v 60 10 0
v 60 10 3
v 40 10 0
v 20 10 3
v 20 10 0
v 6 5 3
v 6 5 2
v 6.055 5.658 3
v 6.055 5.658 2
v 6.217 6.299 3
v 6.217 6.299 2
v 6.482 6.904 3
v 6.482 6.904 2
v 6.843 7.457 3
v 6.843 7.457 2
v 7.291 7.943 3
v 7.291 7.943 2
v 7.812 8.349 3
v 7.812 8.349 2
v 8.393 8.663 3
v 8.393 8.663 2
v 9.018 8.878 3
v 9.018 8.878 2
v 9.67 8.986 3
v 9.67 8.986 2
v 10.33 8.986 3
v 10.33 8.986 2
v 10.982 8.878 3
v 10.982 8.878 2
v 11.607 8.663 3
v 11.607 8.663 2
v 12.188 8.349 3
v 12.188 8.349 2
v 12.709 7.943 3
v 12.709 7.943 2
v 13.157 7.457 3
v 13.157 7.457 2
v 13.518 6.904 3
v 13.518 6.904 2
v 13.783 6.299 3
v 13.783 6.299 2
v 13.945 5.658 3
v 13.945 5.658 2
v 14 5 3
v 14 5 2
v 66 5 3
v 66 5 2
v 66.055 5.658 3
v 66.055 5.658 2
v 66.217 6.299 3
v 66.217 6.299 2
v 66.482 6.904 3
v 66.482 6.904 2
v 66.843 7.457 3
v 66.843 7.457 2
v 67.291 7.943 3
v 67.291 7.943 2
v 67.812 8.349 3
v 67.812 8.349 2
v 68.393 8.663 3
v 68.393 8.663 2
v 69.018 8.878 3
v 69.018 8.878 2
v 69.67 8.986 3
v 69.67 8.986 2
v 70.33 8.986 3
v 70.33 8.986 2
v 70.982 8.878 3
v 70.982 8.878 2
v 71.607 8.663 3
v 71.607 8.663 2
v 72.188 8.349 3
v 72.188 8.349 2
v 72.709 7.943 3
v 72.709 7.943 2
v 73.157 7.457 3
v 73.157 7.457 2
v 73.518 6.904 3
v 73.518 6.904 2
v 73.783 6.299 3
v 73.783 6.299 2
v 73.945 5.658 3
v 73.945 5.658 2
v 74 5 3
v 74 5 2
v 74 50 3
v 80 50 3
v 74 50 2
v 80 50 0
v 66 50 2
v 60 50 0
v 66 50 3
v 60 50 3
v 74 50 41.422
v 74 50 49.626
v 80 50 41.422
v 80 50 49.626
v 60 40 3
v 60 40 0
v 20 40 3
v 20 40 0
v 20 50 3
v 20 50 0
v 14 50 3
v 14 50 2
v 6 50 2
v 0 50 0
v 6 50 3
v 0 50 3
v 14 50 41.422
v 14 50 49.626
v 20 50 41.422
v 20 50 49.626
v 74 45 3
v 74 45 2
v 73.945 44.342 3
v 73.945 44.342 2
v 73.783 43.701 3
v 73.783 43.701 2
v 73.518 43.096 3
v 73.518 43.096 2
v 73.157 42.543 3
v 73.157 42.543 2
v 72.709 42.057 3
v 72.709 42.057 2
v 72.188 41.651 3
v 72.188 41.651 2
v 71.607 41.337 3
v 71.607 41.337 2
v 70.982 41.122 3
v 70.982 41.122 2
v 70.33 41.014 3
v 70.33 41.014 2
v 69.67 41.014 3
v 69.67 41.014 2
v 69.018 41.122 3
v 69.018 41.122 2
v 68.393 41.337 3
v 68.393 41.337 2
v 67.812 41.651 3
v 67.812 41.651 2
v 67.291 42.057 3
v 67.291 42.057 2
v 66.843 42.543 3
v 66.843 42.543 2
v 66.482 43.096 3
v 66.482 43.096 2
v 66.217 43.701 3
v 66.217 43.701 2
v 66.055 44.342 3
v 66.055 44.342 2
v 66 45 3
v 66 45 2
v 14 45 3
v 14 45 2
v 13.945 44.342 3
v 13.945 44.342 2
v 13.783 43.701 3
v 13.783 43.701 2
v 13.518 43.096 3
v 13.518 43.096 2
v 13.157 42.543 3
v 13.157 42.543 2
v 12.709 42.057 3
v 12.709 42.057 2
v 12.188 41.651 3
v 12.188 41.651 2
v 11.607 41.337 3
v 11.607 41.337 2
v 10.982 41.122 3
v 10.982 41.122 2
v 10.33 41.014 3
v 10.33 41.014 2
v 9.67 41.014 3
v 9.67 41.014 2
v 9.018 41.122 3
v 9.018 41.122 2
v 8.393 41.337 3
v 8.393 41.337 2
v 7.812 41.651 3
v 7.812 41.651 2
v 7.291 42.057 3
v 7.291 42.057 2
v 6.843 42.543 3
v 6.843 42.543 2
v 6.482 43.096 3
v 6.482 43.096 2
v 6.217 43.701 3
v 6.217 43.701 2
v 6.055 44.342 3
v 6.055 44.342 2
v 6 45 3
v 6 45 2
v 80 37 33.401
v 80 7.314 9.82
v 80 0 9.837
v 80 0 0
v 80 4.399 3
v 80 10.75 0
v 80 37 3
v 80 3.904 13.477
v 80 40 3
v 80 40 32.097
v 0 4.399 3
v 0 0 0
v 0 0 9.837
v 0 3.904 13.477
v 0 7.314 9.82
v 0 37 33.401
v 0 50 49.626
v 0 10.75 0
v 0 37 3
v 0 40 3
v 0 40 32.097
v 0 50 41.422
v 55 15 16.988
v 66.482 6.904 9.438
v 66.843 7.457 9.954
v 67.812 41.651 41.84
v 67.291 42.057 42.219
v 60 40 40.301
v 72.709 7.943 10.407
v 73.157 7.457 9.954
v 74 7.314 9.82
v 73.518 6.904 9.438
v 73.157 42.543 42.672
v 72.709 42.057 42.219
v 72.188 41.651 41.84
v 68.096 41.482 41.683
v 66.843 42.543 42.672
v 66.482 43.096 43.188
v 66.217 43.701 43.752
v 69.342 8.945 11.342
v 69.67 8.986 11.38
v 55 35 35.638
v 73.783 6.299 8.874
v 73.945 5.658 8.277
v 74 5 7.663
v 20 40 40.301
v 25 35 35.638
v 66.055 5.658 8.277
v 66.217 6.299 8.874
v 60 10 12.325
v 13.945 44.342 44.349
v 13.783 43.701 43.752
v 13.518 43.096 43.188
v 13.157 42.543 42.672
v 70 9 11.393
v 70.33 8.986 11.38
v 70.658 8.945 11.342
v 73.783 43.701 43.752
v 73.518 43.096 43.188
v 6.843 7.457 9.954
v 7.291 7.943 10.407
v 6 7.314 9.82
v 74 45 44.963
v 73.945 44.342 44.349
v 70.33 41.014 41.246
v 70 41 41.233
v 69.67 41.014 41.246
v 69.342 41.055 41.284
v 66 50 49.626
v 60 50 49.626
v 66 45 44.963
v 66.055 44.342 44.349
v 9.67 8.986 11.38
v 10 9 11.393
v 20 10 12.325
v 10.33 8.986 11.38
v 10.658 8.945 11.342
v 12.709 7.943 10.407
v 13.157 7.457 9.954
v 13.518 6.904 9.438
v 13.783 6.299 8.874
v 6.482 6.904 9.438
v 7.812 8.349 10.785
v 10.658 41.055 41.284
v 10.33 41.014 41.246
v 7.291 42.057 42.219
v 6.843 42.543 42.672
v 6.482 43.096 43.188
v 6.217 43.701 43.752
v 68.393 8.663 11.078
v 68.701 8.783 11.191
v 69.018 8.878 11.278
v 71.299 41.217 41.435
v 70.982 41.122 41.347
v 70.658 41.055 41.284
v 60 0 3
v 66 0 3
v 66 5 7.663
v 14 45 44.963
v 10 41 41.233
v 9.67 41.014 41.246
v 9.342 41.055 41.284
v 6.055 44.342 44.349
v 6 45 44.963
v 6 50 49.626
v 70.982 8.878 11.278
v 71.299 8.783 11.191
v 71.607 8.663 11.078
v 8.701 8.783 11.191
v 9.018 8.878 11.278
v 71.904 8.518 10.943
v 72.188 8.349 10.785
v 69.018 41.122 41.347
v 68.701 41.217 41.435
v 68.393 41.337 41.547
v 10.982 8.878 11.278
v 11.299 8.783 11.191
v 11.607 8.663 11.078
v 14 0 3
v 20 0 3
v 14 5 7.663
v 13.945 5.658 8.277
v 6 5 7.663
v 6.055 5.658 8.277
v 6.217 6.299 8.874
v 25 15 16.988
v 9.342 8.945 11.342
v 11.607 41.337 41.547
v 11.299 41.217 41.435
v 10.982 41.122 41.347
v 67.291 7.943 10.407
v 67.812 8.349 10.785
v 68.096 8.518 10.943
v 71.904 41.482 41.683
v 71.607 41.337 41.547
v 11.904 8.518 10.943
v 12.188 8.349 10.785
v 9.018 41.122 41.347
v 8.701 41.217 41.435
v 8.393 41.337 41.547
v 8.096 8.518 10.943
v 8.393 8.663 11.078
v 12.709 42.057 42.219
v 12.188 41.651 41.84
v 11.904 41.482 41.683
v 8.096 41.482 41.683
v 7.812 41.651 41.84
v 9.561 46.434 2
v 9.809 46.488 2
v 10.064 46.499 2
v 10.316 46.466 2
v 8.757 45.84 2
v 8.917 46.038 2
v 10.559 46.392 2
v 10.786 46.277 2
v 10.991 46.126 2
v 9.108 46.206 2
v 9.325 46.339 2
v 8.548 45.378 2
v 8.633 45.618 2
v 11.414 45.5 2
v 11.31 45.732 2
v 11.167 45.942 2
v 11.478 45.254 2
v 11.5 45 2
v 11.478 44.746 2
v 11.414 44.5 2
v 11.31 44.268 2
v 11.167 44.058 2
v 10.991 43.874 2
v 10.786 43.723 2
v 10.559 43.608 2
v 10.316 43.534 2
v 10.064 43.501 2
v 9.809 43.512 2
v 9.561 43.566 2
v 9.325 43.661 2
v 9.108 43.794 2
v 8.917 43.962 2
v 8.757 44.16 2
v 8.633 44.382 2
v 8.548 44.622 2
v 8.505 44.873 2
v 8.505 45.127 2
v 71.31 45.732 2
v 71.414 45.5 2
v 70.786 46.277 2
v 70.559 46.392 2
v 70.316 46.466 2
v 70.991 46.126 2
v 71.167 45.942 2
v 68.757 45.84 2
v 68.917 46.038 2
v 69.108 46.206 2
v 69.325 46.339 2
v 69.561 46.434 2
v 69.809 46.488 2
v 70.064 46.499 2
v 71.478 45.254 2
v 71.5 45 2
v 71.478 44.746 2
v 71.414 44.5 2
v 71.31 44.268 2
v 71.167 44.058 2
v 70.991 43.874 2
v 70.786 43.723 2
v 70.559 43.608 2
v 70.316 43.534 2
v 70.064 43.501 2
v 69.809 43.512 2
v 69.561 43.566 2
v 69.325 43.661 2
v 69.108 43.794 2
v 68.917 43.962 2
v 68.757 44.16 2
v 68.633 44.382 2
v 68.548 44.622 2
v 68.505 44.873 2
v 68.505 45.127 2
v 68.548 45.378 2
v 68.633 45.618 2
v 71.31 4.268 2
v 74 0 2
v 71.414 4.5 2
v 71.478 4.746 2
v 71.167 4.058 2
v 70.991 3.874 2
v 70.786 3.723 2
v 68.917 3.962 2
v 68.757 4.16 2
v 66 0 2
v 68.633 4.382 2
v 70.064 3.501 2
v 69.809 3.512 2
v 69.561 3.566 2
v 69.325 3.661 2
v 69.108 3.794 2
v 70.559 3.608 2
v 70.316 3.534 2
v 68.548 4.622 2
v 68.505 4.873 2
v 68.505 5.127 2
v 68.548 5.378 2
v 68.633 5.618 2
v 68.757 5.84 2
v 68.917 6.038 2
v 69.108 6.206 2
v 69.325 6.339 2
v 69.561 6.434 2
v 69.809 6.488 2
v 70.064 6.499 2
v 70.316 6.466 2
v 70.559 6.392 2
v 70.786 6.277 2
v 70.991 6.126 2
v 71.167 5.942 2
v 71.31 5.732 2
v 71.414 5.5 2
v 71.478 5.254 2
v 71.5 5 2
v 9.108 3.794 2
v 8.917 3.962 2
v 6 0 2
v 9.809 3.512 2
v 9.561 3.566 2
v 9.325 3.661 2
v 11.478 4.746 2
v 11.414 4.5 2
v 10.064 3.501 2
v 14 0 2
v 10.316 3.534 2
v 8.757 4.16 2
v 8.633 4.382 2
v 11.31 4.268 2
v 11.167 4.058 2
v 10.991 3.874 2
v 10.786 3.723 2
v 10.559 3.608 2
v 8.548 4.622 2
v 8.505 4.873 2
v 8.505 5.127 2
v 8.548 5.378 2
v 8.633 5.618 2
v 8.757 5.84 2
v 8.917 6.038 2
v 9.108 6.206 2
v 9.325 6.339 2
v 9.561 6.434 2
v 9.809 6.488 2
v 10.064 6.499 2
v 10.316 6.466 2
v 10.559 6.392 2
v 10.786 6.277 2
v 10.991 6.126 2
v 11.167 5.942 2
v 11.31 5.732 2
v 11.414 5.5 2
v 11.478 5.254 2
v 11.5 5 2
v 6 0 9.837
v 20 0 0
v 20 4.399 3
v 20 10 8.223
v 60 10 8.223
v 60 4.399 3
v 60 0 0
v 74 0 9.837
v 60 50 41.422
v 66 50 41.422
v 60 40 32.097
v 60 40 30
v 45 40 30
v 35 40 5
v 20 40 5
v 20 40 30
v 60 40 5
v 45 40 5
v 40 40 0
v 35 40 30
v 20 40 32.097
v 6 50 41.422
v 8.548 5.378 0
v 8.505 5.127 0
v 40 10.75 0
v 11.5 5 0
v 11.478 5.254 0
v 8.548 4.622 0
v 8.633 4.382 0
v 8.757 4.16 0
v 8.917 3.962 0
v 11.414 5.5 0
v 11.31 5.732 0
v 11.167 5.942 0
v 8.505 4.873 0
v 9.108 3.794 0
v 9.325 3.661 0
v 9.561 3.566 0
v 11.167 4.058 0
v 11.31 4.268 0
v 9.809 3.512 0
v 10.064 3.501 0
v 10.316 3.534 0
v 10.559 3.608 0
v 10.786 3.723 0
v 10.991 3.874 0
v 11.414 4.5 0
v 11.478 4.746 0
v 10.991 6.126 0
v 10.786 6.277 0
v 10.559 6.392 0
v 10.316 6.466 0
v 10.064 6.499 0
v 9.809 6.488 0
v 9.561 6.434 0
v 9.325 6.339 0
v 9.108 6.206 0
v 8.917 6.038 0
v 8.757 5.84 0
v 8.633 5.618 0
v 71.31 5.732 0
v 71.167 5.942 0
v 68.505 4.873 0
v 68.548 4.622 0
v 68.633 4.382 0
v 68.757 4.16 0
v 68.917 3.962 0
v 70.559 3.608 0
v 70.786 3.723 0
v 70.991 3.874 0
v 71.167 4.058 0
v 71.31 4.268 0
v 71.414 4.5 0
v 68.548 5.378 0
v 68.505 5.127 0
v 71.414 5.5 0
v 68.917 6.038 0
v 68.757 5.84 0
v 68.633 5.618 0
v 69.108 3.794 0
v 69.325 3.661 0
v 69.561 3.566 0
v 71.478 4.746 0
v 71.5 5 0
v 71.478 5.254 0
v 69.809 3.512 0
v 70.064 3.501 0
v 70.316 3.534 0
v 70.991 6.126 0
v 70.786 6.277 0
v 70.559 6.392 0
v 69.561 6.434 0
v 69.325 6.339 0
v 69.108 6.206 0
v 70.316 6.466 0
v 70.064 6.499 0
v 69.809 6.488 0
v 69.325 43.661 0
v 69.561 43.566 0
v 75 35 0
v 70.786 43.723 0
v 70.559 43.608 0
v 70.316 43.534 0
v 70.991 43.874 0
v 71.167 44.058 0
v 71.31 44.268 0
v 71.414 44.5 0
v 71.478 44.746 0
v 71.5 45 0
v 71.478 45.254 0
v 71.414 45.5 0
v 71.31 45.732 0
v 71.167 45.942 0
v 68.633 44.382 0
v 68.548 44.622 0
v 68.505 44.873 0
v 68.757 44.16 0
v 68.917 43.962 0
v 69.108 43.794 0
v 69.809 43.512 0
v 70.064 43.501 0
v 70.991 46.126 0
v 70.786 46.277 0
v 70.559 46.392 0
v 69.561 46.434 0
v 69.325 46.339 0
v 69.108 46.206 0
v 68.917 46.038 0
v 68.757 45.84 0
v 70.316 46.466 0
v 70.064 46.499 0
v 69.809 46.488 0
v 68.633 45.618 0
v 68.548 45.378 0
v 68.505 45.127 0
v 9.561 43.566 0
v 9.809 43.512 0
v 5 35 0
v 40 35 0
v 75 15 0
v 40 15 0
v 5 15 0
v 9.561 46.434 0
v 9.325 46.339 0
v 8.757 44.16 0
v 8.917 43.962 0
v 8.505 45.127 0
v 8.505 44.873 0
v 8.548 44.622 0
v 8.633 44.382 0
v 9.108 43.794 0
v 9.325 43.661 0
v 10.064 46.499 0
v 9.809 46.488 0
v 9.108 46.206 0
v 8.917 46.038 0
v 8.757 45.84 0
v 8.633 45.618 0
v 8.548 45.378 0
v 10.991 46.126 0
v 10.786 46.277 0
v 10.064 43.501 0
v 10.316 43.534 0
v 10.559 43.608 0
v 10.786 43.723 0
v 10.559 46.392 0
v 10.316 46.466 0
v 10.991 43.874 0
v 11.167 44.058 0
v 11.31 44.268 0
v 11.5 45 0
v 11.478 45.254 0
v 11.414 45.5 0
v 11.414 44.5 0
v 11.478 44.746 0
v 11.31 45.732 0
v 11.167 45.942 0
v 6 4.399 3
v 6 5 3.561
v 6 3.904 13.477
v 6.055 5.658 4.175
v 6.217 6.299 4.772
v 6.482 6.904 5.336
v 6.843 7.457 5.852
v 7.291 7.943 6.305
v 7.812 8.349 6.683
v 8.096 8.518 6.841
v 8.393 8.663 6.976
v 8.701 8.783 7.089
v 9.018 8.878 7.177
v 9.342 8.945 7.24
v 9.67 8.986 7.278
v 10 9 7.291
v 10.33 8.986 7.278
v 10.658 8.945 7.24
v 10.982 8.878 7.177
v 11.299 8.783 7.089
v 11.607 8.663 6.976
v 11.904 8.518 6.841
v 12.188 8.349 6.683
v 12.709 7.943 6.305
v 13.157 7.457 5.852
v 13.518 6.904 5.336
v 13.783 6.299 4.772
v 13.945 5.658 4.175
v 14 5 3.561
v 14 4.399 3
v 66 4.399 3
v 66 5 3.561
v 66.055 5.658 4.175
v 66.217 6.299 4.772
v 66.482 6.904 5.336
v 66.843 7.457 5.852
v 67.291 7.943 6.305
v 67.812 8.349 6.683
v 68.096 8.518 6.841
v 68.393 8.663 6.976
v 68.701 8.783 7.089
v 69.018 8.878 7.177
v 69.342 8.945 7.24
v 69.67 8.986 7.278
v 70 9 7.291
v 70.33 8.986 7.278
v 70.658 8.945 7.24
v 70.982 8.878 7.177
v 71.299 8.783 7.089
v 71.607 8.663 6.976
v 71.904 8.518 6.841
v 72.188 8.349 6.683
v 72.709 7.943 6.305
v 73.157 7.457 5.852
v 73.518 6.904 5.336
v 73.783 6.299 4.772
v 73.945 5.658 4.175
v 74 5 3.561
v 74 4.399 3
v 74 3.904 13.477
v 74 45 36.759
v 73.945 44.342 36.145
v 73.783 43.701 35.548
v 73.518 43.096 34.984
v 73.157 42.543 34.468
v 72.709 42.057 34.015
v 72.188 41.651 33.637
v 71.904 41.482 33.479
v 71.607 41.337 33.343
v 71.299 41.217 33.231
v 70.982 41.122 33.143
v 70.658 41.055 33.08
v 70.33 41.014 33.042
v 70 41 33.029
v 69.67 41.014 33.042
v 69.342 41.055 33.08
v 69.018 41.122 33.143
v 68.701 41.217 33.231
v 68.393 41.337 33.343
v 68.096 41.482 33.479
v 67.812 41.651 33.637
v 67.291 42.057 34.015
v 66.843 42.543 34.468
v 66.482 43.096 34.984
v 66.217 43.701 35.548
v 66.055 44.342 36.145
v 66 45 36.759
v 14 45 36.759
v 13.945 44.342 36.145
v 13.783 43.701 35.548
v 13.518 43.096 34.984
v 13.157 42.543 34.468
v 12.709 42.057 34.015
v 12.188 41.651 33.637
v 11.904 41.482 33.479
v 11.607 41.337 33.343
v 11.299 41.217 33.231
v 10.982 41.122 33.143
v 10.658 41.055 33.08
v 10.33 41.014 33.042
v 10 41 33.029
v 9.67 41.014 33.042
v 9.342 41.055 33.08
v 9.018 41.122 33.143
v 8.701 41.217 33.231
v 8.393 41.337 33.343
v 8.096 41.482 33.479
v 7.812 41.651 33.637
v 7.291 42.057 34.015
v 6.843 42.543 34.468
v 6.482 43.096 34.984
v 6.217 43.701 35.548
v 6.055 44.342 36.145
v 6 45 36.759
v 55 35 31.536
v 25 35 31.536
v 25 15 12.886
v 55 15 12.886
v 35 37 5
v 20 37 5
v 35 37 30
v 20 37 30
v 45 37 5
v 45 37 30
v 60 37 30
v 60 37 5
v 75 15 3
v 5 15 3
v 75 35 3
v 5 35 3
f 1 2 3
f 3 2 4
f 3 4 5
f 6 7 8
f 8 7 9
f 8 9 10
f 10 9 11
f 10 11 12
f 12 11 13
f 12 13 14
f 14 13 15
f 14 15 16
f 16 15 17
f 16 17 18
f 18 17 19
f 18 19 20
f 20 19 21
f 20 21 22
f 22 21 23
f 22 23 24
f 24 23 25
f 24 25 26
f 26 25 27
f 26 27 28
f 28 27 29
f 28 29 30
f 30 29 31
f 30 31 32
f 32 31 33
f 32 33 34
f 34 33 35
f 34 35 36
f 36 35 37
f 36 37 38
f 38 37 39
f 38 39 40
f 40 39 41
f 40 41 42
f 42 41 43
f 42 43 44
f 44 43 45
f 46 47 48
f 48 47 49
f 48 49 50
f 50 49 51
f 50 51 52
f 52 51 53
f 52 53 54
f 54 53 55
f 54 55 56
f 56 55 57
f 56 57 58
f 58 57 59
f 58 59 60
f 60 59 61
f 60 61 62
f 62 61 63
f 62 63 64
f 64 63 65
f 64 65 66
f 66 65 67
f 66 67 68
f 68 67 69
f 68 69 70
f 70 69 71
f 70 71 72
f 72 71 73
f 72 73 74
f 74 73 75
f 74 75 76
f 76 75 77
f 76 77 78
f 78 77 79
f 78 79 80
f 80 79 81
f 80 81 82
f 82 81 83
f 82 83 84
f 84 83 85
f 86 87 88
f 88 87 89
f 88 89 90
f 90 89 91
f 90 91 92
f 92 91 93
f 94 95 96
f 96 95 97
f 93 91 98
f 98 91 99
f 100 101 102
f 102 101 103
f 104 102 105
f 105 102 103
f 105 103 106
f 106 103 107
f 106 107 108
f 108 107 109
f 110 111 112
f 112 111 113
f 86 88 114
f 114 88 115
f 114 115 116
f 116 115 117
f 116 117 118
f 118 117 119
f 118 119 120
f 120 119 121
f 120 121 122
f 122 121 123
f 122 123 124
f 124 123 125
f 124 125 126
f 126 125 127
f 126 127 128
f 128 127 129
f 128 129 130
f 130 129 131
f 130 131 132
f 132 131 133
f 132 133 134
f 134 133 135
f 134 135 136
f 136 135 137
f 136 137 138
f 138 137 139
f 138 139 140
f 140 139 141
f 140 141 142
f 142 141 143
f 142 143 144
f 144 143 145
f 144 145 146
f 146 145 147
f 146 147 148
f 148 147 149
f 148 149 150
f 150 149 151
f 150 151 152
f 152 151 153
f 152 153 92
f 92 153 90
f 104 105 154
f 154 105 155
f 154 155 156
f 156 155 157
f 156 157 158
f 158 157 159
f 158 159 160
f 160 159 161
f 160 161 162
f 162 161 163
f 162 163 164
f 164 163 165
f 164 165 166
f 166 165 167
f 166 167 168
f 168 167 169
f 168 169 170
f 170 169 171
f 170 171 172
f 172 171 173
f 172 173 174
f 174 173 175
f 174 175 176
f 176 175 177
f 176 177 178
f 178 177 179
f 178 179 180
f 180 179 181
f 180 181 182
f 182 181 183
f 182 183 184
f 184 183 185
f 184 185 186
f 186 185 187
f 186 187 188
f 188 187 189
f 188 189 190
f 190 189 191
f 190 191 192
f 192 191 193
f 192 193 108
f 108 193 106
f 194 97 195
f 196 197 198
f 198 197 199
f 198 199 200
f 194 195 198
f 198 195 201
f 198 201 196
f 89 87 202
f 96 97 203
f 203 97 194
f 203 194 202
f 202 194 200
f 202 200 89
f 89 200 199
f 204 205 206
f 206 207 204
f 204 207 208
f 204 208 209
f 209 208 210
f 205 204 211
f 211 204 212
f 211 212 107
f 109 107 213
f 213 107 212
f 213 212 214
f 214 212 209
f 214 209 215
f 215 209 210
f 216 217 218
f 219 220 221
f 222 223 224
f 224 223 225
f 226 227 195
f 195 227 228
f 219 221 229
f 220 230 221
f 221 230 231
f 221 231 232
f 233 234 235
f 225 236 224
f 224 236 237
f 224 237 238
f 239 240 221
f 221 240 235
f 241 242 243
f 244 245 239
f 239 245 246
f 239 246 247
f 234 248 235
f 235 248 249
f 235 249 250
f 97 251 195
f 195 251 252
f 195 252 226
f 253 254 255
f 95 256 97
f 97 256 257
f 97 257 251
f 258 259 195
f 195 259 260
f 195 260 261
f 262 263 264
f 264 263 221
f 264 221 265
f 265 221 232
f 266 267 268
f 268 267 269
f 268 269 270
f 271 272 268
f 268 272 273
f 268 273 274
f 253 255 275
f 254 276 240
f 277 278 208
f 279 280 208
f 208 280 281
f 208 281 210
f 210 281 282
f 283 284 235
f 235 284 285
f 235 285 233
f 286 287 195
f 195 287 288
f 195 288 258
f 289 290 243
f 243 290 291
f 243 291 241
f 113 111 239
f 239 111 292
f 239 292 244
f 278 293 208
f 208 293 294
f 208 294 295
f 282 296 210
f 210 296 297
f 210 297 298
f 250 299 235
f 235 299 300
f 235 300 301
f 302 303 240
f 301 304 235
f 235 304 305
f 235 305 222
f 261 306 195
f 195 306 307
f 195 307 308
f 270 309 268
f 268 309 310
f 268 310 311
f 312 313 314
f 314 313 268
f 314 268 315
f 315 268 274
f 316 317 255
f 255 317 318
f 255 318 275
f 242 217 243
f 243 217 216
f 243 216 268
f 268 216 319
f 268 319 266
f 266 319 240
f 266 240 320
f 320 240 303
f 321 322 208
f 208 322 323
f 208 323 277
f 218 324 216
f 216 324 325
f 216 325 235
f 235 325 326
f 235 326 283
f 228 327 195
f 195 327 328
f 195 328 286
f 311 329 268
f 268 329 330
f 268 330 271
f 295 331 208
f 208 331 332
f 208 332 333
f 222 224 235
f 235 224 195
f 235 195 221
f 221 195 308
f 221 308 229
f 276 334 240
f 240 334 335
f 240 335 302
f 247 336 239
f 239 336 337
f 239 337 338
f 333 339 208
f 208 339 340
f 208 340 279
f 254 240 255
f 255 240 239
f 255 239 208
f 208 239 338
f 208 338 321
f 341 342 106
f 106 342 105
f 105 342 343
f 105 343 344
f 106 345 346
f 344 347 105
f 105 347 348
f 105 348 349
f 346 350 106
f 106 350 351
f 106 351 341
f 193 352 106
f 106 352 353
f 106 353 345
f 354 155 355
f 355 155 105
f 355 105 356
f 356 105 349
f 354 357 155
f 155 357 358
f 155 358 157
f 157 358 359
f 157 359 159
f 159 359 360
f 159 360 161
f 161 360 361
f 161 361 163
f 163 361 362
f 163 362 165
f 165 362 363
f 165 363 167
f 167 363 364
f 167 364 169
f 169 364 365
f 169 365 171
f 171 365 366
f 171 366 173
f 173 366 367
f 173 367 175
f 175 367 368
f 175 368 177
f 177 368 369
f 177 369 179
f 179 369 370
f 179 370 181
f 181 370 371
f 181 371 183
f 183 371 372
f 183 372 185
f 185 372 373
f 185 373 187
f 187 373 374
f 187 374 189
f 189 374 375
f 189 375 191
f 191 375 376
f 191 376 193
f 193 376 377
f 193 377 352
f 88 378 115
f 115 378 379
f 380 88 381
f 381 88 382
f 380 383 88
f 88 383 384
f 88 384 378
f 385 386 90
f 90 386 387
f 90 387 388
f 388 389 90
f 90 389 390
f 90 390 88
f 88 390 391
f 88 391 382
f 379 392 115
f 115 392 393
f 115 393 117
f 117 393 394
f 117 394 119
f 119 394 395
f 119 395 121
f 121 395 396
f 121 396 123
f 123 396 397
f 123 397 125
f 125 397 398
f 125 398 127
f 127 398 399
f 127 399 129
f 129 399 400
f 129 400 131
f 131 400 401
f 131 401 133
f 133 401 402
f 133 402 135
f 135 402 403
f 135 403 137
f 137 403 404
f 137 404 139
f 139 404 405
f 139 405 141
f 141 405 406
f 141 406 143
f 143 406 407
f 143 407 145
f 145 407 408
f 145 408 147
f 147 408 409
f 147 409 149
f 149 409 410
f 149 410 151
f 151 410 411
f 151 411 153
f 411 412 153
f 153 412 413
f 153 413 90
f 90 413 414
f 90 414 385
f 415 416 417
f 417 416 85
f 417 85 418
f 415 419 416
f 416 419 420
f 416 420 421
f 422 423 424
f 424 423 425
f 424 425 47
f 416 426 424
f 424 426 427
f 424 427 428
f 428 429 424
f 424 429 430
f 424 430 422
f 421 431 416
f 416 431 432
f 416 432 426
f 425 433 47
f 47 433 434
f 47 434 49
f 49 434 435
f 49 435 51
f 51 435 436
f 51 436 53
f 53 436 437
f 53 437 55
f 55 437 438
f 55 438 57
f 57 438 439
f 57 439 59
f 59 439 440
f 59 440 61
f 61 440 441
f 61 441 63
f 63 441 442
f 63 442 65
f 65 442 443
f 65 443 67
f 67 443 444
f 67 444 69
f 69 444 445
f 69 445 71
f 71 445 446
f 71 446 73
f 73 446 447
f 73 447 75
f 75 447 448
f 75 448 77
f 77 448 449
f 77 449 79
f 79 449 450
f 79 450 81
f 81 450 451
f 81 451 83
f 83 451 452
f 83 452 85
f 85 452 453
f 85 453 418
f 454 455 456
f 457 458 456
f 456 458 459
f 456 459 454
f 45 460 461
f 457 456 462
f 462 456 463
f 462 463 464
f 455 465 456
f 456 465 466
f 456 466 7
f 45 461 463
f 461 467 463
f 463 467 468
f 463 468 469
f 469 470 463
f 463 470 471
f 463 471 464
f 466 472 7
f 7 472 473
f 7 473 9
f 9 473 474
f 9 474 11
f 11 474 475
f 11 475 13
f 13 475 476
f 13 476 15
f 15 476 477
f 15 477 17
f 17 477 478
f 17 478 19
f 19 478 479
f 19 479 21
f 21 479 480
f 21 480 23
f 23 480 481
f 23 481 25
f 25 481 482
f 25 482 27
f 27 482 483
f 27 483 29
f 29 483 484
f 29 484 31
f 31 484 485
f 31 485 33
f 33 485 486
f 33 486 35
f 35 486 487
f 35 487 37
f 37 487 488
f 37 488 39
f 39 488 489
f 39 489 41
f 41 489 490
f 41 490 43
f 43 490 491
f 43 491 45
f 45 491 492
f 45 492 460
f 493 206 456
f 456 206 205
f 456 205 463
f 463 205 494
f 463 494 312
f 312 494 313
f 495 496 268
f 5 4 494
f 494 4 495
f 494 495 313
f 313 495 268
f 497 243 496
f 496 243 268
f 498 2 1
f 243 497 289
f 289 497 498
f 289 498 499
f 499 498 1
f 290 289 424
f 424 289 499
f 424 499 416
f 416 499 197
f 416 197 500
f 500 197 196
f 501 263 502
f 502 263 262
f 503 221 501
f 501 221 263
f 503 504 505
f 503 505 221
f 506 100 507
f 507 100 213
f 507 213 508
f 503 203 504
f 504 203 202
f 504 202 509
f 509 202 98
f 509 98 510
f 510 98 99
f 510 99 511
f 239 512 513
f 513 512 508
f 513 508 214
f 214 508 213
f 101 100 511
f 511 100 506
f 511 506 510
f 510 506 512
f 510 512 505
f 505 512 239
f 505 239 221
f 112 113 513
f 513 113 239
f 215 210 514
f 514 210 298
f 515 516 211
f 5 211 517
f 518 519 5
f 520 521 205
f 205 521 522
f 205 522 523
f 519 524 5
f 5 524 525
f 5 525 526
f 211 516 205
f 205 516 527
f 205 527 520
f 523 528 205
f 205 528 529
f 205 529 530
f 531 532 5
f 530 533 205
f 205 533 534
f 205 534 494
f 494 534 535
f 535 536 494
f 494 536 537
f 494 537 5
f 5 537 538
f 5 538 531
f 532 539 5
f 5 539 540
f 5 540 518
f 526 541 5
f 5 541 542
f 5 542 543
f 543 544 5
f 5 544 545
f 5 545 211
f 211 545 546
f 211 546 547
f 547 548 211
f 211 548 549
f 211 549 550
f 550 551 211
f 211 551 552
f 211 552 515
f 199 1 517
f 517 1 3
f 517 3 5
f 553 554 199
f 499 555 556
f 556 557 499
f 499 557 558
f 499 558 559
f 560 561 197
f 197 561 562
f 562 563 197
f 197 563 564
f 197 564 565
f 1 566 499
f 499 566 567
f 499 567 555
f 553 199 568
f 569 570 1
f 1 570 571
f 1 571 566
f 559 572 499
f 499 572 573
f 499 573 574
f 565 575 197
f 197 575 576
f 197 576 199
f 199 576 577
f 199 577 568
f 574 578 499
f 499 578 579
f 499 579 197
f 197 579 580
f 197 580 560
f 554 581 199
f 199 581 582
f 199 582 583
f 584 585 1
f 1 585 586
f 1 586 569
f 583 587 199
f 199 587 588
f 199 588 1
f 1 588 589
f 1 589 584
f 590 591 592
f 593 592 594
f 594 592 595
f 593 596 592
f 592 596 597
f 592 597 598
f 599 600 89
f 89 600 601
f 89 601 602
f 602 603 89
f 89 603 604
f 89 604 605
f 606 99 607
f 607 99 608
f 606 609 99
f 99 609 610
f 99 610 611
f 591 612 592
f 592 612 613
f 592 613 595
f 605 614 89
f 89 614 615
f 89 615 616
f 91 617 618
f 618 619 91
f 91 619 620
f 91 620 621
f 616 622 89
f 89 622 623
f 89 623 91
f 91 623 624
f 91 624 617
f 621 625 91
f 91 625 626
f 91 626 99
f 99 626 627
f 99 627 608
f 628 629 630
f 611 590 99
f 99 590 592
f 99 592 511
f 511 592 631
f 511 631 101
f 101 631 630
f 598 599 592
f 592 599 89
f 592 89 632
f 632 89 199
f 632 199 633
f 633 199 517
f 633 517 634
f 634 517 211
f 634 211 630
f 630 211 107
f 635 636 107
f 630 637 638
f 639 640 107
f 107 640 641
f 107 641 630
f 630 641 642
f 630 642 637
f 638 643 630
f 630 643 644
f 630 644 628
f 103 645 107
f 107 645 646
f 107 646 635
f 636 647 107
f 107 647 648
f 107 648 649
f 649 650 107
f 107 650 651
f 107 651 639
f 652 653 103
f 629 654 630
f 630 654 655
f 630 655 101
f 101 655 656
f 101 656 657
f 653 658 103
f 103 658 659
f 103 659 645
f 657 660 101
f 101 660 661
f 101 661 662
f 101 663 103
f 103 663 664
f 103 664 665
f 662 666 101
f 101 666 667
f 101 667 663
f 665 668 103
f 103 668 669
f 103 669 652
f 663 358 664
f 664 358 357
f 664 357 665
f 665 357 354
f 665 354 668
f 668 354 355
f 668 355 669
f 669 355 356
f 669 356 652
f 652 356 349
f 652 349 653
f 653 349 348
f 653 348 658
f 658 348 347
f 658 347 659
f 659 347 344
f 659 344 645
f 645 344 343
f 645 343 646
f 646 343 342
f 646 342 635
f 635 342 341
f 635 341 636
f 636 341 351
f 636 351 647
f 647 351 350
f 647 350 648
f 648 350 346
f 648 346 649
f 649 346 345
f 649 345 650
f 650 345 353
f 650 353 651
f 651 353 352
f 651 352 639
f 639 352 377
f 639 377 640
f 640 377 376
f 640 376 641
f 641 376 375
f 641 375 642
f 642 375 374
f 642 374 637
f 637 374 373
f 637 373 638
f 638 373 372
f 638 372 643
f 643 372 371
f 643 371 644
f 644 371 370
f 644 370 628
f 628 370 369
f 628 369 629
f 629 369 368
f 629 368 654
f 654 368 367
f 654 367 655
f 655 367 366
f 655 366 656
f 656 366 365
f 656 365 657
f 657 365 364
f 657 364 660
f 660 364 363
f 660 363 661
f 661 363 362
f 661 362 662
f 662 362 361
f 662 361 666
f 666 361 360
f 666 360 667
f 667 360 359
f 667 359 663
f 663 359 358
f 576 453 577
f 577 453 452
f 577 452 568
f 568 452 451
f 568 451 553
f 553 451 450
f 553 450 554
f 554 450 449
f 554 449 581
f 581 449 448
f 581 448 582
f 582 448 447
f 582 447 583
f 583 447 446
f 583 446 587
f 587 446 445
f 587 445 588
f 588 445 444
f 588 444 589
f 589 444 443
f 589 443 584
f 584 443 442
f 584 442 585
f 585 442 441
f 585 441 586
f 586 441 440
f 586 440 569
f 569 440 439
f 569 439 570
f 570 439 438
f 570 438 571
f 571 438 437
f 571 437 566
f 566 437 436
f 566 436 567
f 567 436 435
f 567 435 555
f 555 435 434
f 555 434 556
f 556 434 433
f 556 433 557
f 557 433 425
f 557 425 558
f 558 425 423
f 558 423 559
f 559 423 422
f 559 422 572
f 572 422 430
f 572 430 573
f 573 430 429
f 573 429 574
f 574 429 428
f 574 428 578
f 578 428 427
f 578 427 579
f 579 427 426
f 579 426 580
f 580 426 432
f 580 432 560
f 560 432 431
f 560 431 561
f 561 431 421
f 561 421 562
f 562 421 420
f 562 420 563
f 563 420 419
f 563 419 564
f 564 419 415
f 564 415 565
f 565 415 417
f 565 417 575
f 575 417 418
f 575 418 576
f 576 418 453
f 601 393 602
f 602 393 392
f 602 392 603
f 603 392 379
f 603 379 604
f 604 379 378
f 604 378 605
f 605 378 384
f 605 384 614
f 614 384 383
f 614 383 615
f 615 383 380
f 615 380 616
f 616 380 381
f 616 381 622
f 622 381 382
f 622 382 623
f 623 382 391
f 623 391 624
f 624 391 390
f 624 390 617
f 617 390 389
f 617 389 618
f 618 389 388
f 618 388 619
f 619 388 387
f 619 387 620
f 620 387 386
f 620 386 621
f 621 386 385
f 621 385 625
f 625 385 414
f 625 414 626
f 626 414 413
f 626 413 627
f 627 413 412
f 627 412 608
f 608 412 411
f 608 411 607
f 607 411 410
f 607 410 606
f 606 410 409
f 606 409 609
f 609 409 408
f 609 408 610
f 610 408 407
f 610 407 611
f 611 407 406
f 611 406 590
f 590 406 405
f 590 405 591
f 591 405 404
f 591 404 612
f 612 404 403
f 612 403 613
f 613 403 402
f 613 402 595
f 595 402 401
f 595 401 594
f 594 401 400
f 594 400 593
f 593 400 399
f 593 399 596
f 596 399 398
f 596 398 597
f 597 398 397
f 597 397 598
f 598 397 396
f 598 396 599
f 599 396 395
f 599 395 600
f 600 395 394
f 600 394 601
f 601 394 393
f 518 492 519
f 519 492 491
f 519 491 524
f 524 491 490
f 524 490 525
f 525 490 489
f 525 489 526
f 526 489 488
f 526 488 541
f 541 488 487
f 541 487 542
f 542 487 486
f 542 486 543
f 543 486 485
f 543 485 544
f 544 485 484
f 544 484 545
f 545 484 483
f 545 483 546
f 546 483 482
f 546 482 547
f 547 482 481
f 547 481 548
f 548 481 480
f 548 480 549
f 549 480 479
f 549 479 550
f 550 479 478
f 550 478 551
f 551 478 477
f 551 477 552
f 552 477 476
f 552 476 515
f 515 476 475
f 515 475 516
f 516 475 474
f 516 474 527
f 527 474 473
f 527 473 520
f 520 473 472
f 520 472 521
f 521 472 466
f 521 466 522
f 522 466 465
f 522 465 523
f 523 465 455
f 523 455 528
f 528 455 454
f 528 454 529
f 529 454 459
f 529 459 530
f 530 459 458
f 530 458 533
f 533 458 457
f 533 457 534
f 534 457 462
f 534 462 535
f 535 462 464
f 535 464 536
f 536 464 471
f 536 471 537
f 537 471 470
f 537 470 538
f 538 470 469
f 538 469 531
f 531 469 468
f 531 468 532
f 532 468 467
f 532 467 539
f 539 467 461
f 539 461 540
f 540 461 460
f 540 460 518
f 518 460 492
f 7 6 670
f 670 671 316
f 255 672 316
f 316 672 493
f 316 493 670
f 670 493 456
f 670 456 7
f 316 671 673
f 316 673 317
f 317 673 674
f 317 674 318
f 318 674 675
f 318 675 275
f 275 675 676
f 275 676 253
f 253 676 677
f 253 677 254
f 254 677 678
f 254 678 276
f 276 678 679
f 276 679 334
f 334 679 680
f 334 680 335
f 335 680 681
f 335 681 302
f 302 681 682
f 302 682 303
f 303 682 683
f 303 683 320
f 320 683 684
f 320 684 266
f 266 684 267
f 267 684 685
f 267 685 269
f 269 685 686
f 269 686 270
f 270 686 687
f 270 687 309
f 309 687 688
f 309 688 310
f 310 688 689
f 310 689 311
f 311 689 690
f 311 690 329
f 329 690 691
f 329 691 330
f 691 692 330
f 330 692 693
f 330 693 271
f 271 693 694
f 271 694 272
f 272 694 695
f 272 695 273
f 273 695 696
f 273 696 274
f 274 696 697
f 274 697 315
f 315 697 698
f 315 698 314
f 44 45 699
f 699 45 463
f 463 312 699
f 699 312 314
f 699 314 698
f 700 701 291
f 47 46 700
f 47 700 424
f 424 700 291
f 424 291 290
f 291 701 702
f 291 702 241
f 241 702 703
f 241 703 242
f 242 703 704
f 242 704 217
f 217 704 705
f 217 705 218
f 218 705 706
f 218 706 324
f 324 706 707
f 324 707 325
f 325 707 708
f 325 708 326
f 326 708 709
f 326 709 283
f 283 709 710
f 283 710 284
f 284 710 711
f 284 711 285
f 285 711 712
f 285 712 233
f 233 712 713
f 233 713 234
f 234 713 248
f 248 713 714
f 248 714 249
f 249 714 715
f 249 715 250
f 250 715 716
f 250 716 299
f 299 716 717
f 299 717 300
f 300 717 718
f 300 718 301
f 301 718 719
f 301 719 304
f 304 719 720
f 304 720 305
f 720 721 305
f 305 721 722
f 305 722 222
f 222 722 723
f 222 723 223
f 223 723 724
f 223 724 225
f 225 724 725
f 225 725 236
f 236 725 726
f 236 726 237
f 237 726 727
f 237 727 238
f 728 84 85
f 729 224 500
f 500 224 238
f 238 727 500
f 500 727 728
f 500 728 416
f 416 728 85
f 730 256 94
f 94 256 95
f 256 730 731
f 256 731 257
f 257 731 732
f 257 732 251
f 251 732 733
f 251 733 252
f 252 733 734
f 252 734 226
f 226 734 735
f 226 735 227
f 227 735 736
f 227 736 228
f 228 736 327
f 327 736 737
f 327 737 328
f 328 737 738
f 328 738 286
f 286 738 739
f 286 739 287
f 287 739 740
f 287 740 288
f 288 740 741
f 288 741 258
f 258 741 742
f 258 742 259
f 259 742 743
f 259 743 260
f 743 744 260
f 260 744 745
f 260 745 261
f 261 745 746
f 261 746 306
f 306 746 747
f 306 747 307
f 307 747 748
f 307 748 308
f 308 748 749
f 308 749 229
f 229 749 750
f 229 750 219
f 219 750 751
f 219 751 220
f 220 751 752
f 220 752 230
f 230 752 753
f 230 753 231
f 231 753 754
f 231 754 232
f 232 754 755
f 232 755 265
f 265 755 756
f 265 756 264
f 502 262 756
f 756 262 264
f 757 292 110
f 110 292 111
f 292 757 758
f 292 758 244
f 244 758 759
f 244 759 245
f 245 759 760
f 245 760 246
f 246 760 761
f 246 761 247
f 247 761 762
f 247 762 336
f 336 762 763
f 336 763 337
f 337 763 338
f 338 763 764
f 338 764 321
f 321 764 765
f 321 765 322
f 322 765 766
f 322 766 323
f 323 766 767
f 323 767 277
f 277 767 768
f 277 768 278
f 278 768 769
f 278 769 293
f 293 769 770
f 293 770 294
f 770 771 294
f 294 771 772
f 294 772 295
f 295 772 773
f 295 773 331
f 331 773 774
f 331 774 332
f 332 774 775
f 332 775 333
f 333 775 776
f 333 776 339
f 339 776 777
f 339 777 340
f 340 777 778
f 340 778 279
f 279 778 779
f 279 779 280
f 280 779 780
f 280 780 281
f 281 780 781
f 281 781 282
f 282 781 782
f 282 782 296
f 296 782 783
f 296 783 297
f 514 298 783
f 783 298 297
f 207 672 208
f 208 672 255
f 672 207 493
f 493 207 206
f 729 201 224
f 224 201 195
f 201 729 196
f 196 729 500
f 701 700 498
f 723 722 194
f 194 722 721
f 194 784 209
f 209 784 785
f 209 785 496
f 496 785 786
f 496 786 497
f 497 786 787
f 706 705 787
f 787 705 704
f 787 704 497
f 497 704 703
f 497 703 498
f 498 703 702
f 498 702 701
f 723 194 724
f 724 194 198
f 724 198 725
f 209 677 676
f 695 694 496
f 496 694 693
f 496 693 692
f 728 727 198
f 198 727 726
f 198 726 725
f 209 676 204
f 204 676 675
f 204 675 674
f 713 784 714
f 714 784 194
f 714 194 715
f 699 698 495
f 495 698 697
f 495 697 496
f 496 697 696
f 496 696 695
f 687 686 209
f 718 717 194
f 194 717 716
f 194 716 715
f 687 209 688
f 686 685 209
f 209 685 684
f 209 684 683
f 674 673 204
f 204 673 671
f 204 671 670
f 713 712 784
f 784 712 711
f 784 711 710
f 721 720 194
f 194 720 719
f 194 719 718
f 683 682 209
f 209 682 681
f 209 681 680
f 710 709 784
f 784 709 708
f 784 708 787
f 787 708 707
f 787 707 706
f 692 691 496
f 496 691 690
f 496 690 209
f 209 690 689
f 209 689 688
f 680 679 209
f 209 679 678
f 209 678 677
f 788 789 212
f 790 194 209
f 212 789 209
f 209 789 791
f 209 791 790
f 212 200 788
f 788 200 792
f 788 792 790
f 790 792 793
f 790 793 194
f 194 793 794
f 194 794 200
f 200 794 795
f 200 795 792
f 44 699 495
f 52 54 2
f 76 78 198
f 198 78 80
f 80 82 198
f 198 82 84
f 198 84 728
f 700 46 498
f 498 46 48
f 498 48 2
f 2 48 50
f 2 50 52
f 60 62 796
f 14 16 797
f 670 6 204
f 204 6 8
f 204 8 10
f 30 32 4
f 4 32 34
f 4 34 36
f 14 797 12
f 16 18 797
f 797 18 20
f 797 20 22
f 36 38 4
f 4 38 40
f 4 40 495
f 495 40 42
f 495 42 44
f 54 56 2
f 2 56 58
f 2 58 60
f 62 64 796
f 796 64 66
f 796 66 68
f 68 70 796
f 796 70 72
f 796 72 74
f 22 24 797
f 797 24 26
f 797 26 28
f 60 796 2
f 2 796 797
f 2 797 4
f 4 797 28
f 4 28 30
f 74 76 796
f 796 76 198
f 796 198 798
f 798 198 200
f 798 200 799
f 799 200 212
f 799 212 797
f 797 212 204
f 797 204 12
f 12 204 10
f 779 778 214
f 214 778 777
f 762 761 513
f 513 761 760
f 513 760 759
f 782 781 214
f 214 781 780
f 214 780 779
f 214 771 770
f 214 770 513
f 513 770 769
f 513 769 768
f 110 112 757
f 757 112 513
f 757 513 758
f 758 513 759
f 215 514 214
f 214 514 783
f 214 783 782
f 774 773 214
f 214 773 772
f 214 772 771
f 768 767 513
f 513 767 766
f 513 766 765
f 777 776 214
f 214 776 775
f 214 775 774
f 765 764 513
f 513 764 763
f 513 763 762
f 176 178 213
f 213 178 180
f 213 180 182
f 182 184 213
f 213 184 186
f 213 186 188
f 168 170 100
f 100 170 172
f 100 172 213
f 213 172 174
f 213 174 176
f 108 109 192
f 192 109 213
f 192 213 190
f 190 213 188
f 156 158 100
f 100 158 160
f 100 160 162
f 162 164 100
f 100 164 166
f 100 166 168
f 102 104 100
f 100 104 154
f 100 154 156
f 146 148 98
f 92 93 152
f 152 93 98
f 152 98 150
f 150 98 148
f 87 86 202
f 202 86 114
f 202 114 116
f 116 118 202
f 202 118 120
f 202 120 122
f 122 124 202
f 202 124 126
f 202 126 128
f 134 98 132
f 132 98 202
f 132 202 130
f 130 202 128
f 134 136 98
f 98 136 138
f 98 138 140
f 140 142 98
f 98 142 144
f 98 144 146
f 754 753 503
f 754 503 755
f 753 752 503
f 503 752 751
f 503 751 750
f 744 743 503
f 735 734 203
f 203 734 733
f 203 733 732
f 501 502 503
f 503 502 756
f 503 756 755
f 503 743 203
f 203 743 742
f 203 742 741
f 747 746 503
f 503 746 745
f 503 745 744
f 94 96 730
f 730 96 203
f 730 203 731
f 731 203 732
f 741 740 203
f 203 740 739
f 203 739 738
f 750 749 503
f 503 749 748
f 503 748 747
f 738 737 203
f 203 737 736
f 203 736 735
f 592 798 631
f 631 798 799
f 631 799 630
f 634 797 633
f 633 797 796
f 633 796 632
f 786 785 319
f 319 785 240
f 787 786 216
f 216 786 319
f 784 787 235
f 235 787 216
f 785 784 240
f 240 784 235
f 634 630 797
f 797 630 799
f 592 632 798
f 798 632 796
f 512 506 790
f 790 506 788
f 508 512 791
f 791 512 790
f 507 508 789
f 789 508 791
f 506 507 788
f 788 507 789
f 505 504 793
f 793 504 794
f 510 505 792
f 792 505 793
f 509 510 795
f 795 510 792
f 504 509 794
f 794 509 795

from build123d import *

# Parameters (mm, degrees)
EXTRUDE_2_DEPTH     = 2
SKETCH_3_R          = 1.5
CUT_EXTRUDE_1_DEPTH = 95.361008897
EXTRUDE_3_DEPTH     = 1
DRAFT_4_ANGLE       = 43
SKETCH_6_W          = 6
SKETCH_6_H          = 10
EXTRUDE_4_DEPTH     = 5
SKETCH_7_W          = 6
SKETCH_7_H          = 10
EXTRUDE_5_DEPTH     = 5
CUT_EXTRUDE_2_DEPTH = 107.596038813
CUT_EXTRUDE_4_DEPTH = 107.596038813
CUT_EXTRUDE_5_DEPTH = 107.596038813
CUT_EXTRUDE_6_DEPTH = 107.596038813
SKETCH_15_W         = 30
SKETCH_15_H         = 20
CUT_EXTRUDE_7_DEPTH = 107.596038813
SKETCH_16_W         = 20
SKETCH_16_H         = 20
CUT_EXTRUDE_8_DEPTH = 5
SKETCH_17_W         = 15
SKETCH_17_H         = 25
CUT_EXTRUDE_9_DEPTH = 5


with BuildPart() as part:
    # 草图1 → 凸台-拉伸2 (new body)
    with BuildSketch(Plane.XY):
        Polygon((0, 0), (0, 50), (20, 50), (20, 40), (60, 40), (60, 50), (80, 50), (80, 0), (60, 0), (60, 10), (20, 10), (20, 0), align=None)
    extrude(amount=EXTRUDE_2_DEPTH)

    # 草图3 → 切除-拉伸1 (cut, through all)
    with BuildSketch(Plane.XY.offset(2)):
        with Locations((10, 45)):
            Circle(SKETCH_3_R)
        with Locations((10, 5)):
            Circle(SKETCH_3_R)
        with Locations((70, 45)):
            Circle(SKETCH_3_R)
        with Locations((70, 5)):
            Circle(SKETCH_3_R)
    extrude(amount=-CUT_EXTRUDE_1_DEPTH, mode=Mode.SUBTRACT)

    # 草图5 → 凸台-拉伸3 (add)
    with BuildSketch(Plane.XY.offset(2)):
        with BuildLine():
            Line((0, 50), (6, 50))
            Line((6, 50), (6, 45))
            ThreePointArc((6, 45), (10, 41), (14, 45))
            Line((14, 45), (14, 50))
            Line((14, 50), (20, 50))
            Line((20, 50), (20, 40))
            Line((20, 40), (60, 40))
            Line((60, 40), (60, 50))
            Line((60, 50), (66, 50))
            Line((66, 50), (66, 45))
            ThreePointArc((66, 45), (70, 41), (74, 45))
            Line((74, 45), (74, 50))
            Line((74, 50), (80, 50))
            Line((80, 50), (80, 0))
            Line((80, 0), (74, 0))
            Line((74, 0), (74, 5))
            ThreePointArc((74, 5), (70, 9), (66, 5))
            Line((66, 5), (66, 0))
            Line((66, 0), (60, 0))
            Line((60, 0), (60, 10))
            Line((60, 10), (20, 10))
            Line((20, 10), (20, 0))
            Line((20, 0), (14, 0))
            Line((14, 0), (14, 5))
            ThreePointArc((14, 5), (10, 9), (6, 5))
            Line((6, 5), (6, 0))
            Line((6, 0), (0, 0))
            Line((0, 0), (0, 50))
        make_face()
    extrude(amount=EXTRUDE_3_DEPTH)

    # 拔模4
    draft_4_faces = [part.faces().sort_by_distance(p)[0] for p in [
        (40, 25, 3),
    ]]
    draft(draft_4_faces, Plane(origin=(20, 0, 2), x_dir=(-1, 0, 0), z_dir=(0, -1, 0)), DRAFT_4_ANGLE)

    # 草图6 → 凸台-拉伸4 (add)
    with BuildSketch(Plane(origin=(0, -1.496346075, 1.604634711), x_dir=(1, 0, 0), z_dir=(0, -0.6819983600624997, 0.7313537016191695))):
        with Locations((3, 7.04599508)):
            Rectangle(SKETCH_6_W, SKETCH_6_H)
    extrude(amount=EXTRUDE_4_DEPTH)

    # 草图7 → 凸台-拉伸5 (add)
    with BuildSketch(Plane(origin=(0, -1.496346075, 1.604634711), x_dir=(1, 0, 0), z_dir=(0, -0.6819983600624997, 0.7313537016191695))):
        with Locations((77, 7.04599508)):
            Rectangle(SKETCH_7_W, SKETCH_7_H)
    extrude(amount=EXTRUDE_5_DEPTH)

    # 草图8 → 切除-拉伸2 (cut, through all)
    with BuildSketch(Plane(origin=(80, 0, 0), x_dir=(0, 0, -1), z_dir=(1, 0, 0))):
        Polygon((-3, 0), (-9.836637305, 0), (-6.656768508, -3.4099918), align=None)
    extrude(amount=-CUT_EXTRUDE_2_DEPTH, mode=Mode.SUBTRACT)

    # 草图11 → 切除-拉伸4 (cut, through all)
    with BuildSketch(Plane(origin=(80, 0, 0), x_dir=(0, 0, -1), z_dir=(1, 0, 0))):
        Polygon((-3, 37), (-3, 13), (-11.020713736, 13), (-33.401075804, 37), align=None)
    extrude(amount=-CUT_EXTRUDE_4_DEPTH, mode=Mode.SUBTRACT)

    # 草图12 → 切除-拉伸5 (cut, through all)
    with BuildSketch(Plane(origin=(80, 0, 0), x_dir=(0, 0, -1), z_dir=(1, 0, 0))):
        Polygon((-3, 50), (-41.42178954, 50), (-32.096638679, 40), (-3, 40), align=None)
    extrude(amount=-CUT_EXTRUDE_5_DEPTH, mode=Mode.SUBTRACT)

    # 草图14 → 切除-拉伸6 (cut, through all)
    with BuildSketch(Plane(origin=(80, 0, 0), x_dir=(0, 0, -1), z_dir=(1, 0, 0))):
        Polygon((-11.020713736, 13), (-3, 4.398837557), (-3, 13), align=None)
    extrude(amount=-CUT_EXTRUDE_6_DEPTH, mode=Mode.SUBTRACT)

    # 草图15 → 切除-拉伸7 (cut, through all)
    with BuildSketch(Plane(origin=(0, 0, 0), x_dir=(-1, 0, 0), z_dir=(0, 0, -1))):
        with Locations((-40, 25)):
            Rectangle(SKETCH_15_W, SKETCH_15_H)
    extrude(amount=-CUT_EXTRUDE_7_DEPTH, mode=Mode.SUBTRACT)

    # 草图16 → 切除-拉伸8 (cut)
    with BuildSketch(Plane(origin=(0, 0, 0), x_dir=(-1, 0, 0), z_dir=(0, 0, -1))):
        with Locations((-15, 25)):
            Rectangle(SKETCH_16_W, SKETCH_16_H)
        with Locations((-65, 25)):
            Rectangle(SKETCH_16_W, SKETCH_16_H)
    extrude(amount=-CUT_EXTRUDE_8_DEPTH, mode=Mode.SUBTRACT)

    # 草图17 → 切除-拉伸9 (cut)
    with BuildSketch(Plane(origin=(0, 40, 0), x_dir=(1, 0, 0), z_dir=(0, 1, 0))):
        with Locations((52.5, -17.5)):
            Rectangle(SKETCH_17_W, SKETCH_17_H)
        with Locations((27.5, -17.5)):
            Rectangle(SKETCH_17_W, SKETCH_17_H)
    extrude(amount=-CUT_EXTRUDE_9_DEPTH, mode=Mode.SUBTRACT)


solid = part.part
